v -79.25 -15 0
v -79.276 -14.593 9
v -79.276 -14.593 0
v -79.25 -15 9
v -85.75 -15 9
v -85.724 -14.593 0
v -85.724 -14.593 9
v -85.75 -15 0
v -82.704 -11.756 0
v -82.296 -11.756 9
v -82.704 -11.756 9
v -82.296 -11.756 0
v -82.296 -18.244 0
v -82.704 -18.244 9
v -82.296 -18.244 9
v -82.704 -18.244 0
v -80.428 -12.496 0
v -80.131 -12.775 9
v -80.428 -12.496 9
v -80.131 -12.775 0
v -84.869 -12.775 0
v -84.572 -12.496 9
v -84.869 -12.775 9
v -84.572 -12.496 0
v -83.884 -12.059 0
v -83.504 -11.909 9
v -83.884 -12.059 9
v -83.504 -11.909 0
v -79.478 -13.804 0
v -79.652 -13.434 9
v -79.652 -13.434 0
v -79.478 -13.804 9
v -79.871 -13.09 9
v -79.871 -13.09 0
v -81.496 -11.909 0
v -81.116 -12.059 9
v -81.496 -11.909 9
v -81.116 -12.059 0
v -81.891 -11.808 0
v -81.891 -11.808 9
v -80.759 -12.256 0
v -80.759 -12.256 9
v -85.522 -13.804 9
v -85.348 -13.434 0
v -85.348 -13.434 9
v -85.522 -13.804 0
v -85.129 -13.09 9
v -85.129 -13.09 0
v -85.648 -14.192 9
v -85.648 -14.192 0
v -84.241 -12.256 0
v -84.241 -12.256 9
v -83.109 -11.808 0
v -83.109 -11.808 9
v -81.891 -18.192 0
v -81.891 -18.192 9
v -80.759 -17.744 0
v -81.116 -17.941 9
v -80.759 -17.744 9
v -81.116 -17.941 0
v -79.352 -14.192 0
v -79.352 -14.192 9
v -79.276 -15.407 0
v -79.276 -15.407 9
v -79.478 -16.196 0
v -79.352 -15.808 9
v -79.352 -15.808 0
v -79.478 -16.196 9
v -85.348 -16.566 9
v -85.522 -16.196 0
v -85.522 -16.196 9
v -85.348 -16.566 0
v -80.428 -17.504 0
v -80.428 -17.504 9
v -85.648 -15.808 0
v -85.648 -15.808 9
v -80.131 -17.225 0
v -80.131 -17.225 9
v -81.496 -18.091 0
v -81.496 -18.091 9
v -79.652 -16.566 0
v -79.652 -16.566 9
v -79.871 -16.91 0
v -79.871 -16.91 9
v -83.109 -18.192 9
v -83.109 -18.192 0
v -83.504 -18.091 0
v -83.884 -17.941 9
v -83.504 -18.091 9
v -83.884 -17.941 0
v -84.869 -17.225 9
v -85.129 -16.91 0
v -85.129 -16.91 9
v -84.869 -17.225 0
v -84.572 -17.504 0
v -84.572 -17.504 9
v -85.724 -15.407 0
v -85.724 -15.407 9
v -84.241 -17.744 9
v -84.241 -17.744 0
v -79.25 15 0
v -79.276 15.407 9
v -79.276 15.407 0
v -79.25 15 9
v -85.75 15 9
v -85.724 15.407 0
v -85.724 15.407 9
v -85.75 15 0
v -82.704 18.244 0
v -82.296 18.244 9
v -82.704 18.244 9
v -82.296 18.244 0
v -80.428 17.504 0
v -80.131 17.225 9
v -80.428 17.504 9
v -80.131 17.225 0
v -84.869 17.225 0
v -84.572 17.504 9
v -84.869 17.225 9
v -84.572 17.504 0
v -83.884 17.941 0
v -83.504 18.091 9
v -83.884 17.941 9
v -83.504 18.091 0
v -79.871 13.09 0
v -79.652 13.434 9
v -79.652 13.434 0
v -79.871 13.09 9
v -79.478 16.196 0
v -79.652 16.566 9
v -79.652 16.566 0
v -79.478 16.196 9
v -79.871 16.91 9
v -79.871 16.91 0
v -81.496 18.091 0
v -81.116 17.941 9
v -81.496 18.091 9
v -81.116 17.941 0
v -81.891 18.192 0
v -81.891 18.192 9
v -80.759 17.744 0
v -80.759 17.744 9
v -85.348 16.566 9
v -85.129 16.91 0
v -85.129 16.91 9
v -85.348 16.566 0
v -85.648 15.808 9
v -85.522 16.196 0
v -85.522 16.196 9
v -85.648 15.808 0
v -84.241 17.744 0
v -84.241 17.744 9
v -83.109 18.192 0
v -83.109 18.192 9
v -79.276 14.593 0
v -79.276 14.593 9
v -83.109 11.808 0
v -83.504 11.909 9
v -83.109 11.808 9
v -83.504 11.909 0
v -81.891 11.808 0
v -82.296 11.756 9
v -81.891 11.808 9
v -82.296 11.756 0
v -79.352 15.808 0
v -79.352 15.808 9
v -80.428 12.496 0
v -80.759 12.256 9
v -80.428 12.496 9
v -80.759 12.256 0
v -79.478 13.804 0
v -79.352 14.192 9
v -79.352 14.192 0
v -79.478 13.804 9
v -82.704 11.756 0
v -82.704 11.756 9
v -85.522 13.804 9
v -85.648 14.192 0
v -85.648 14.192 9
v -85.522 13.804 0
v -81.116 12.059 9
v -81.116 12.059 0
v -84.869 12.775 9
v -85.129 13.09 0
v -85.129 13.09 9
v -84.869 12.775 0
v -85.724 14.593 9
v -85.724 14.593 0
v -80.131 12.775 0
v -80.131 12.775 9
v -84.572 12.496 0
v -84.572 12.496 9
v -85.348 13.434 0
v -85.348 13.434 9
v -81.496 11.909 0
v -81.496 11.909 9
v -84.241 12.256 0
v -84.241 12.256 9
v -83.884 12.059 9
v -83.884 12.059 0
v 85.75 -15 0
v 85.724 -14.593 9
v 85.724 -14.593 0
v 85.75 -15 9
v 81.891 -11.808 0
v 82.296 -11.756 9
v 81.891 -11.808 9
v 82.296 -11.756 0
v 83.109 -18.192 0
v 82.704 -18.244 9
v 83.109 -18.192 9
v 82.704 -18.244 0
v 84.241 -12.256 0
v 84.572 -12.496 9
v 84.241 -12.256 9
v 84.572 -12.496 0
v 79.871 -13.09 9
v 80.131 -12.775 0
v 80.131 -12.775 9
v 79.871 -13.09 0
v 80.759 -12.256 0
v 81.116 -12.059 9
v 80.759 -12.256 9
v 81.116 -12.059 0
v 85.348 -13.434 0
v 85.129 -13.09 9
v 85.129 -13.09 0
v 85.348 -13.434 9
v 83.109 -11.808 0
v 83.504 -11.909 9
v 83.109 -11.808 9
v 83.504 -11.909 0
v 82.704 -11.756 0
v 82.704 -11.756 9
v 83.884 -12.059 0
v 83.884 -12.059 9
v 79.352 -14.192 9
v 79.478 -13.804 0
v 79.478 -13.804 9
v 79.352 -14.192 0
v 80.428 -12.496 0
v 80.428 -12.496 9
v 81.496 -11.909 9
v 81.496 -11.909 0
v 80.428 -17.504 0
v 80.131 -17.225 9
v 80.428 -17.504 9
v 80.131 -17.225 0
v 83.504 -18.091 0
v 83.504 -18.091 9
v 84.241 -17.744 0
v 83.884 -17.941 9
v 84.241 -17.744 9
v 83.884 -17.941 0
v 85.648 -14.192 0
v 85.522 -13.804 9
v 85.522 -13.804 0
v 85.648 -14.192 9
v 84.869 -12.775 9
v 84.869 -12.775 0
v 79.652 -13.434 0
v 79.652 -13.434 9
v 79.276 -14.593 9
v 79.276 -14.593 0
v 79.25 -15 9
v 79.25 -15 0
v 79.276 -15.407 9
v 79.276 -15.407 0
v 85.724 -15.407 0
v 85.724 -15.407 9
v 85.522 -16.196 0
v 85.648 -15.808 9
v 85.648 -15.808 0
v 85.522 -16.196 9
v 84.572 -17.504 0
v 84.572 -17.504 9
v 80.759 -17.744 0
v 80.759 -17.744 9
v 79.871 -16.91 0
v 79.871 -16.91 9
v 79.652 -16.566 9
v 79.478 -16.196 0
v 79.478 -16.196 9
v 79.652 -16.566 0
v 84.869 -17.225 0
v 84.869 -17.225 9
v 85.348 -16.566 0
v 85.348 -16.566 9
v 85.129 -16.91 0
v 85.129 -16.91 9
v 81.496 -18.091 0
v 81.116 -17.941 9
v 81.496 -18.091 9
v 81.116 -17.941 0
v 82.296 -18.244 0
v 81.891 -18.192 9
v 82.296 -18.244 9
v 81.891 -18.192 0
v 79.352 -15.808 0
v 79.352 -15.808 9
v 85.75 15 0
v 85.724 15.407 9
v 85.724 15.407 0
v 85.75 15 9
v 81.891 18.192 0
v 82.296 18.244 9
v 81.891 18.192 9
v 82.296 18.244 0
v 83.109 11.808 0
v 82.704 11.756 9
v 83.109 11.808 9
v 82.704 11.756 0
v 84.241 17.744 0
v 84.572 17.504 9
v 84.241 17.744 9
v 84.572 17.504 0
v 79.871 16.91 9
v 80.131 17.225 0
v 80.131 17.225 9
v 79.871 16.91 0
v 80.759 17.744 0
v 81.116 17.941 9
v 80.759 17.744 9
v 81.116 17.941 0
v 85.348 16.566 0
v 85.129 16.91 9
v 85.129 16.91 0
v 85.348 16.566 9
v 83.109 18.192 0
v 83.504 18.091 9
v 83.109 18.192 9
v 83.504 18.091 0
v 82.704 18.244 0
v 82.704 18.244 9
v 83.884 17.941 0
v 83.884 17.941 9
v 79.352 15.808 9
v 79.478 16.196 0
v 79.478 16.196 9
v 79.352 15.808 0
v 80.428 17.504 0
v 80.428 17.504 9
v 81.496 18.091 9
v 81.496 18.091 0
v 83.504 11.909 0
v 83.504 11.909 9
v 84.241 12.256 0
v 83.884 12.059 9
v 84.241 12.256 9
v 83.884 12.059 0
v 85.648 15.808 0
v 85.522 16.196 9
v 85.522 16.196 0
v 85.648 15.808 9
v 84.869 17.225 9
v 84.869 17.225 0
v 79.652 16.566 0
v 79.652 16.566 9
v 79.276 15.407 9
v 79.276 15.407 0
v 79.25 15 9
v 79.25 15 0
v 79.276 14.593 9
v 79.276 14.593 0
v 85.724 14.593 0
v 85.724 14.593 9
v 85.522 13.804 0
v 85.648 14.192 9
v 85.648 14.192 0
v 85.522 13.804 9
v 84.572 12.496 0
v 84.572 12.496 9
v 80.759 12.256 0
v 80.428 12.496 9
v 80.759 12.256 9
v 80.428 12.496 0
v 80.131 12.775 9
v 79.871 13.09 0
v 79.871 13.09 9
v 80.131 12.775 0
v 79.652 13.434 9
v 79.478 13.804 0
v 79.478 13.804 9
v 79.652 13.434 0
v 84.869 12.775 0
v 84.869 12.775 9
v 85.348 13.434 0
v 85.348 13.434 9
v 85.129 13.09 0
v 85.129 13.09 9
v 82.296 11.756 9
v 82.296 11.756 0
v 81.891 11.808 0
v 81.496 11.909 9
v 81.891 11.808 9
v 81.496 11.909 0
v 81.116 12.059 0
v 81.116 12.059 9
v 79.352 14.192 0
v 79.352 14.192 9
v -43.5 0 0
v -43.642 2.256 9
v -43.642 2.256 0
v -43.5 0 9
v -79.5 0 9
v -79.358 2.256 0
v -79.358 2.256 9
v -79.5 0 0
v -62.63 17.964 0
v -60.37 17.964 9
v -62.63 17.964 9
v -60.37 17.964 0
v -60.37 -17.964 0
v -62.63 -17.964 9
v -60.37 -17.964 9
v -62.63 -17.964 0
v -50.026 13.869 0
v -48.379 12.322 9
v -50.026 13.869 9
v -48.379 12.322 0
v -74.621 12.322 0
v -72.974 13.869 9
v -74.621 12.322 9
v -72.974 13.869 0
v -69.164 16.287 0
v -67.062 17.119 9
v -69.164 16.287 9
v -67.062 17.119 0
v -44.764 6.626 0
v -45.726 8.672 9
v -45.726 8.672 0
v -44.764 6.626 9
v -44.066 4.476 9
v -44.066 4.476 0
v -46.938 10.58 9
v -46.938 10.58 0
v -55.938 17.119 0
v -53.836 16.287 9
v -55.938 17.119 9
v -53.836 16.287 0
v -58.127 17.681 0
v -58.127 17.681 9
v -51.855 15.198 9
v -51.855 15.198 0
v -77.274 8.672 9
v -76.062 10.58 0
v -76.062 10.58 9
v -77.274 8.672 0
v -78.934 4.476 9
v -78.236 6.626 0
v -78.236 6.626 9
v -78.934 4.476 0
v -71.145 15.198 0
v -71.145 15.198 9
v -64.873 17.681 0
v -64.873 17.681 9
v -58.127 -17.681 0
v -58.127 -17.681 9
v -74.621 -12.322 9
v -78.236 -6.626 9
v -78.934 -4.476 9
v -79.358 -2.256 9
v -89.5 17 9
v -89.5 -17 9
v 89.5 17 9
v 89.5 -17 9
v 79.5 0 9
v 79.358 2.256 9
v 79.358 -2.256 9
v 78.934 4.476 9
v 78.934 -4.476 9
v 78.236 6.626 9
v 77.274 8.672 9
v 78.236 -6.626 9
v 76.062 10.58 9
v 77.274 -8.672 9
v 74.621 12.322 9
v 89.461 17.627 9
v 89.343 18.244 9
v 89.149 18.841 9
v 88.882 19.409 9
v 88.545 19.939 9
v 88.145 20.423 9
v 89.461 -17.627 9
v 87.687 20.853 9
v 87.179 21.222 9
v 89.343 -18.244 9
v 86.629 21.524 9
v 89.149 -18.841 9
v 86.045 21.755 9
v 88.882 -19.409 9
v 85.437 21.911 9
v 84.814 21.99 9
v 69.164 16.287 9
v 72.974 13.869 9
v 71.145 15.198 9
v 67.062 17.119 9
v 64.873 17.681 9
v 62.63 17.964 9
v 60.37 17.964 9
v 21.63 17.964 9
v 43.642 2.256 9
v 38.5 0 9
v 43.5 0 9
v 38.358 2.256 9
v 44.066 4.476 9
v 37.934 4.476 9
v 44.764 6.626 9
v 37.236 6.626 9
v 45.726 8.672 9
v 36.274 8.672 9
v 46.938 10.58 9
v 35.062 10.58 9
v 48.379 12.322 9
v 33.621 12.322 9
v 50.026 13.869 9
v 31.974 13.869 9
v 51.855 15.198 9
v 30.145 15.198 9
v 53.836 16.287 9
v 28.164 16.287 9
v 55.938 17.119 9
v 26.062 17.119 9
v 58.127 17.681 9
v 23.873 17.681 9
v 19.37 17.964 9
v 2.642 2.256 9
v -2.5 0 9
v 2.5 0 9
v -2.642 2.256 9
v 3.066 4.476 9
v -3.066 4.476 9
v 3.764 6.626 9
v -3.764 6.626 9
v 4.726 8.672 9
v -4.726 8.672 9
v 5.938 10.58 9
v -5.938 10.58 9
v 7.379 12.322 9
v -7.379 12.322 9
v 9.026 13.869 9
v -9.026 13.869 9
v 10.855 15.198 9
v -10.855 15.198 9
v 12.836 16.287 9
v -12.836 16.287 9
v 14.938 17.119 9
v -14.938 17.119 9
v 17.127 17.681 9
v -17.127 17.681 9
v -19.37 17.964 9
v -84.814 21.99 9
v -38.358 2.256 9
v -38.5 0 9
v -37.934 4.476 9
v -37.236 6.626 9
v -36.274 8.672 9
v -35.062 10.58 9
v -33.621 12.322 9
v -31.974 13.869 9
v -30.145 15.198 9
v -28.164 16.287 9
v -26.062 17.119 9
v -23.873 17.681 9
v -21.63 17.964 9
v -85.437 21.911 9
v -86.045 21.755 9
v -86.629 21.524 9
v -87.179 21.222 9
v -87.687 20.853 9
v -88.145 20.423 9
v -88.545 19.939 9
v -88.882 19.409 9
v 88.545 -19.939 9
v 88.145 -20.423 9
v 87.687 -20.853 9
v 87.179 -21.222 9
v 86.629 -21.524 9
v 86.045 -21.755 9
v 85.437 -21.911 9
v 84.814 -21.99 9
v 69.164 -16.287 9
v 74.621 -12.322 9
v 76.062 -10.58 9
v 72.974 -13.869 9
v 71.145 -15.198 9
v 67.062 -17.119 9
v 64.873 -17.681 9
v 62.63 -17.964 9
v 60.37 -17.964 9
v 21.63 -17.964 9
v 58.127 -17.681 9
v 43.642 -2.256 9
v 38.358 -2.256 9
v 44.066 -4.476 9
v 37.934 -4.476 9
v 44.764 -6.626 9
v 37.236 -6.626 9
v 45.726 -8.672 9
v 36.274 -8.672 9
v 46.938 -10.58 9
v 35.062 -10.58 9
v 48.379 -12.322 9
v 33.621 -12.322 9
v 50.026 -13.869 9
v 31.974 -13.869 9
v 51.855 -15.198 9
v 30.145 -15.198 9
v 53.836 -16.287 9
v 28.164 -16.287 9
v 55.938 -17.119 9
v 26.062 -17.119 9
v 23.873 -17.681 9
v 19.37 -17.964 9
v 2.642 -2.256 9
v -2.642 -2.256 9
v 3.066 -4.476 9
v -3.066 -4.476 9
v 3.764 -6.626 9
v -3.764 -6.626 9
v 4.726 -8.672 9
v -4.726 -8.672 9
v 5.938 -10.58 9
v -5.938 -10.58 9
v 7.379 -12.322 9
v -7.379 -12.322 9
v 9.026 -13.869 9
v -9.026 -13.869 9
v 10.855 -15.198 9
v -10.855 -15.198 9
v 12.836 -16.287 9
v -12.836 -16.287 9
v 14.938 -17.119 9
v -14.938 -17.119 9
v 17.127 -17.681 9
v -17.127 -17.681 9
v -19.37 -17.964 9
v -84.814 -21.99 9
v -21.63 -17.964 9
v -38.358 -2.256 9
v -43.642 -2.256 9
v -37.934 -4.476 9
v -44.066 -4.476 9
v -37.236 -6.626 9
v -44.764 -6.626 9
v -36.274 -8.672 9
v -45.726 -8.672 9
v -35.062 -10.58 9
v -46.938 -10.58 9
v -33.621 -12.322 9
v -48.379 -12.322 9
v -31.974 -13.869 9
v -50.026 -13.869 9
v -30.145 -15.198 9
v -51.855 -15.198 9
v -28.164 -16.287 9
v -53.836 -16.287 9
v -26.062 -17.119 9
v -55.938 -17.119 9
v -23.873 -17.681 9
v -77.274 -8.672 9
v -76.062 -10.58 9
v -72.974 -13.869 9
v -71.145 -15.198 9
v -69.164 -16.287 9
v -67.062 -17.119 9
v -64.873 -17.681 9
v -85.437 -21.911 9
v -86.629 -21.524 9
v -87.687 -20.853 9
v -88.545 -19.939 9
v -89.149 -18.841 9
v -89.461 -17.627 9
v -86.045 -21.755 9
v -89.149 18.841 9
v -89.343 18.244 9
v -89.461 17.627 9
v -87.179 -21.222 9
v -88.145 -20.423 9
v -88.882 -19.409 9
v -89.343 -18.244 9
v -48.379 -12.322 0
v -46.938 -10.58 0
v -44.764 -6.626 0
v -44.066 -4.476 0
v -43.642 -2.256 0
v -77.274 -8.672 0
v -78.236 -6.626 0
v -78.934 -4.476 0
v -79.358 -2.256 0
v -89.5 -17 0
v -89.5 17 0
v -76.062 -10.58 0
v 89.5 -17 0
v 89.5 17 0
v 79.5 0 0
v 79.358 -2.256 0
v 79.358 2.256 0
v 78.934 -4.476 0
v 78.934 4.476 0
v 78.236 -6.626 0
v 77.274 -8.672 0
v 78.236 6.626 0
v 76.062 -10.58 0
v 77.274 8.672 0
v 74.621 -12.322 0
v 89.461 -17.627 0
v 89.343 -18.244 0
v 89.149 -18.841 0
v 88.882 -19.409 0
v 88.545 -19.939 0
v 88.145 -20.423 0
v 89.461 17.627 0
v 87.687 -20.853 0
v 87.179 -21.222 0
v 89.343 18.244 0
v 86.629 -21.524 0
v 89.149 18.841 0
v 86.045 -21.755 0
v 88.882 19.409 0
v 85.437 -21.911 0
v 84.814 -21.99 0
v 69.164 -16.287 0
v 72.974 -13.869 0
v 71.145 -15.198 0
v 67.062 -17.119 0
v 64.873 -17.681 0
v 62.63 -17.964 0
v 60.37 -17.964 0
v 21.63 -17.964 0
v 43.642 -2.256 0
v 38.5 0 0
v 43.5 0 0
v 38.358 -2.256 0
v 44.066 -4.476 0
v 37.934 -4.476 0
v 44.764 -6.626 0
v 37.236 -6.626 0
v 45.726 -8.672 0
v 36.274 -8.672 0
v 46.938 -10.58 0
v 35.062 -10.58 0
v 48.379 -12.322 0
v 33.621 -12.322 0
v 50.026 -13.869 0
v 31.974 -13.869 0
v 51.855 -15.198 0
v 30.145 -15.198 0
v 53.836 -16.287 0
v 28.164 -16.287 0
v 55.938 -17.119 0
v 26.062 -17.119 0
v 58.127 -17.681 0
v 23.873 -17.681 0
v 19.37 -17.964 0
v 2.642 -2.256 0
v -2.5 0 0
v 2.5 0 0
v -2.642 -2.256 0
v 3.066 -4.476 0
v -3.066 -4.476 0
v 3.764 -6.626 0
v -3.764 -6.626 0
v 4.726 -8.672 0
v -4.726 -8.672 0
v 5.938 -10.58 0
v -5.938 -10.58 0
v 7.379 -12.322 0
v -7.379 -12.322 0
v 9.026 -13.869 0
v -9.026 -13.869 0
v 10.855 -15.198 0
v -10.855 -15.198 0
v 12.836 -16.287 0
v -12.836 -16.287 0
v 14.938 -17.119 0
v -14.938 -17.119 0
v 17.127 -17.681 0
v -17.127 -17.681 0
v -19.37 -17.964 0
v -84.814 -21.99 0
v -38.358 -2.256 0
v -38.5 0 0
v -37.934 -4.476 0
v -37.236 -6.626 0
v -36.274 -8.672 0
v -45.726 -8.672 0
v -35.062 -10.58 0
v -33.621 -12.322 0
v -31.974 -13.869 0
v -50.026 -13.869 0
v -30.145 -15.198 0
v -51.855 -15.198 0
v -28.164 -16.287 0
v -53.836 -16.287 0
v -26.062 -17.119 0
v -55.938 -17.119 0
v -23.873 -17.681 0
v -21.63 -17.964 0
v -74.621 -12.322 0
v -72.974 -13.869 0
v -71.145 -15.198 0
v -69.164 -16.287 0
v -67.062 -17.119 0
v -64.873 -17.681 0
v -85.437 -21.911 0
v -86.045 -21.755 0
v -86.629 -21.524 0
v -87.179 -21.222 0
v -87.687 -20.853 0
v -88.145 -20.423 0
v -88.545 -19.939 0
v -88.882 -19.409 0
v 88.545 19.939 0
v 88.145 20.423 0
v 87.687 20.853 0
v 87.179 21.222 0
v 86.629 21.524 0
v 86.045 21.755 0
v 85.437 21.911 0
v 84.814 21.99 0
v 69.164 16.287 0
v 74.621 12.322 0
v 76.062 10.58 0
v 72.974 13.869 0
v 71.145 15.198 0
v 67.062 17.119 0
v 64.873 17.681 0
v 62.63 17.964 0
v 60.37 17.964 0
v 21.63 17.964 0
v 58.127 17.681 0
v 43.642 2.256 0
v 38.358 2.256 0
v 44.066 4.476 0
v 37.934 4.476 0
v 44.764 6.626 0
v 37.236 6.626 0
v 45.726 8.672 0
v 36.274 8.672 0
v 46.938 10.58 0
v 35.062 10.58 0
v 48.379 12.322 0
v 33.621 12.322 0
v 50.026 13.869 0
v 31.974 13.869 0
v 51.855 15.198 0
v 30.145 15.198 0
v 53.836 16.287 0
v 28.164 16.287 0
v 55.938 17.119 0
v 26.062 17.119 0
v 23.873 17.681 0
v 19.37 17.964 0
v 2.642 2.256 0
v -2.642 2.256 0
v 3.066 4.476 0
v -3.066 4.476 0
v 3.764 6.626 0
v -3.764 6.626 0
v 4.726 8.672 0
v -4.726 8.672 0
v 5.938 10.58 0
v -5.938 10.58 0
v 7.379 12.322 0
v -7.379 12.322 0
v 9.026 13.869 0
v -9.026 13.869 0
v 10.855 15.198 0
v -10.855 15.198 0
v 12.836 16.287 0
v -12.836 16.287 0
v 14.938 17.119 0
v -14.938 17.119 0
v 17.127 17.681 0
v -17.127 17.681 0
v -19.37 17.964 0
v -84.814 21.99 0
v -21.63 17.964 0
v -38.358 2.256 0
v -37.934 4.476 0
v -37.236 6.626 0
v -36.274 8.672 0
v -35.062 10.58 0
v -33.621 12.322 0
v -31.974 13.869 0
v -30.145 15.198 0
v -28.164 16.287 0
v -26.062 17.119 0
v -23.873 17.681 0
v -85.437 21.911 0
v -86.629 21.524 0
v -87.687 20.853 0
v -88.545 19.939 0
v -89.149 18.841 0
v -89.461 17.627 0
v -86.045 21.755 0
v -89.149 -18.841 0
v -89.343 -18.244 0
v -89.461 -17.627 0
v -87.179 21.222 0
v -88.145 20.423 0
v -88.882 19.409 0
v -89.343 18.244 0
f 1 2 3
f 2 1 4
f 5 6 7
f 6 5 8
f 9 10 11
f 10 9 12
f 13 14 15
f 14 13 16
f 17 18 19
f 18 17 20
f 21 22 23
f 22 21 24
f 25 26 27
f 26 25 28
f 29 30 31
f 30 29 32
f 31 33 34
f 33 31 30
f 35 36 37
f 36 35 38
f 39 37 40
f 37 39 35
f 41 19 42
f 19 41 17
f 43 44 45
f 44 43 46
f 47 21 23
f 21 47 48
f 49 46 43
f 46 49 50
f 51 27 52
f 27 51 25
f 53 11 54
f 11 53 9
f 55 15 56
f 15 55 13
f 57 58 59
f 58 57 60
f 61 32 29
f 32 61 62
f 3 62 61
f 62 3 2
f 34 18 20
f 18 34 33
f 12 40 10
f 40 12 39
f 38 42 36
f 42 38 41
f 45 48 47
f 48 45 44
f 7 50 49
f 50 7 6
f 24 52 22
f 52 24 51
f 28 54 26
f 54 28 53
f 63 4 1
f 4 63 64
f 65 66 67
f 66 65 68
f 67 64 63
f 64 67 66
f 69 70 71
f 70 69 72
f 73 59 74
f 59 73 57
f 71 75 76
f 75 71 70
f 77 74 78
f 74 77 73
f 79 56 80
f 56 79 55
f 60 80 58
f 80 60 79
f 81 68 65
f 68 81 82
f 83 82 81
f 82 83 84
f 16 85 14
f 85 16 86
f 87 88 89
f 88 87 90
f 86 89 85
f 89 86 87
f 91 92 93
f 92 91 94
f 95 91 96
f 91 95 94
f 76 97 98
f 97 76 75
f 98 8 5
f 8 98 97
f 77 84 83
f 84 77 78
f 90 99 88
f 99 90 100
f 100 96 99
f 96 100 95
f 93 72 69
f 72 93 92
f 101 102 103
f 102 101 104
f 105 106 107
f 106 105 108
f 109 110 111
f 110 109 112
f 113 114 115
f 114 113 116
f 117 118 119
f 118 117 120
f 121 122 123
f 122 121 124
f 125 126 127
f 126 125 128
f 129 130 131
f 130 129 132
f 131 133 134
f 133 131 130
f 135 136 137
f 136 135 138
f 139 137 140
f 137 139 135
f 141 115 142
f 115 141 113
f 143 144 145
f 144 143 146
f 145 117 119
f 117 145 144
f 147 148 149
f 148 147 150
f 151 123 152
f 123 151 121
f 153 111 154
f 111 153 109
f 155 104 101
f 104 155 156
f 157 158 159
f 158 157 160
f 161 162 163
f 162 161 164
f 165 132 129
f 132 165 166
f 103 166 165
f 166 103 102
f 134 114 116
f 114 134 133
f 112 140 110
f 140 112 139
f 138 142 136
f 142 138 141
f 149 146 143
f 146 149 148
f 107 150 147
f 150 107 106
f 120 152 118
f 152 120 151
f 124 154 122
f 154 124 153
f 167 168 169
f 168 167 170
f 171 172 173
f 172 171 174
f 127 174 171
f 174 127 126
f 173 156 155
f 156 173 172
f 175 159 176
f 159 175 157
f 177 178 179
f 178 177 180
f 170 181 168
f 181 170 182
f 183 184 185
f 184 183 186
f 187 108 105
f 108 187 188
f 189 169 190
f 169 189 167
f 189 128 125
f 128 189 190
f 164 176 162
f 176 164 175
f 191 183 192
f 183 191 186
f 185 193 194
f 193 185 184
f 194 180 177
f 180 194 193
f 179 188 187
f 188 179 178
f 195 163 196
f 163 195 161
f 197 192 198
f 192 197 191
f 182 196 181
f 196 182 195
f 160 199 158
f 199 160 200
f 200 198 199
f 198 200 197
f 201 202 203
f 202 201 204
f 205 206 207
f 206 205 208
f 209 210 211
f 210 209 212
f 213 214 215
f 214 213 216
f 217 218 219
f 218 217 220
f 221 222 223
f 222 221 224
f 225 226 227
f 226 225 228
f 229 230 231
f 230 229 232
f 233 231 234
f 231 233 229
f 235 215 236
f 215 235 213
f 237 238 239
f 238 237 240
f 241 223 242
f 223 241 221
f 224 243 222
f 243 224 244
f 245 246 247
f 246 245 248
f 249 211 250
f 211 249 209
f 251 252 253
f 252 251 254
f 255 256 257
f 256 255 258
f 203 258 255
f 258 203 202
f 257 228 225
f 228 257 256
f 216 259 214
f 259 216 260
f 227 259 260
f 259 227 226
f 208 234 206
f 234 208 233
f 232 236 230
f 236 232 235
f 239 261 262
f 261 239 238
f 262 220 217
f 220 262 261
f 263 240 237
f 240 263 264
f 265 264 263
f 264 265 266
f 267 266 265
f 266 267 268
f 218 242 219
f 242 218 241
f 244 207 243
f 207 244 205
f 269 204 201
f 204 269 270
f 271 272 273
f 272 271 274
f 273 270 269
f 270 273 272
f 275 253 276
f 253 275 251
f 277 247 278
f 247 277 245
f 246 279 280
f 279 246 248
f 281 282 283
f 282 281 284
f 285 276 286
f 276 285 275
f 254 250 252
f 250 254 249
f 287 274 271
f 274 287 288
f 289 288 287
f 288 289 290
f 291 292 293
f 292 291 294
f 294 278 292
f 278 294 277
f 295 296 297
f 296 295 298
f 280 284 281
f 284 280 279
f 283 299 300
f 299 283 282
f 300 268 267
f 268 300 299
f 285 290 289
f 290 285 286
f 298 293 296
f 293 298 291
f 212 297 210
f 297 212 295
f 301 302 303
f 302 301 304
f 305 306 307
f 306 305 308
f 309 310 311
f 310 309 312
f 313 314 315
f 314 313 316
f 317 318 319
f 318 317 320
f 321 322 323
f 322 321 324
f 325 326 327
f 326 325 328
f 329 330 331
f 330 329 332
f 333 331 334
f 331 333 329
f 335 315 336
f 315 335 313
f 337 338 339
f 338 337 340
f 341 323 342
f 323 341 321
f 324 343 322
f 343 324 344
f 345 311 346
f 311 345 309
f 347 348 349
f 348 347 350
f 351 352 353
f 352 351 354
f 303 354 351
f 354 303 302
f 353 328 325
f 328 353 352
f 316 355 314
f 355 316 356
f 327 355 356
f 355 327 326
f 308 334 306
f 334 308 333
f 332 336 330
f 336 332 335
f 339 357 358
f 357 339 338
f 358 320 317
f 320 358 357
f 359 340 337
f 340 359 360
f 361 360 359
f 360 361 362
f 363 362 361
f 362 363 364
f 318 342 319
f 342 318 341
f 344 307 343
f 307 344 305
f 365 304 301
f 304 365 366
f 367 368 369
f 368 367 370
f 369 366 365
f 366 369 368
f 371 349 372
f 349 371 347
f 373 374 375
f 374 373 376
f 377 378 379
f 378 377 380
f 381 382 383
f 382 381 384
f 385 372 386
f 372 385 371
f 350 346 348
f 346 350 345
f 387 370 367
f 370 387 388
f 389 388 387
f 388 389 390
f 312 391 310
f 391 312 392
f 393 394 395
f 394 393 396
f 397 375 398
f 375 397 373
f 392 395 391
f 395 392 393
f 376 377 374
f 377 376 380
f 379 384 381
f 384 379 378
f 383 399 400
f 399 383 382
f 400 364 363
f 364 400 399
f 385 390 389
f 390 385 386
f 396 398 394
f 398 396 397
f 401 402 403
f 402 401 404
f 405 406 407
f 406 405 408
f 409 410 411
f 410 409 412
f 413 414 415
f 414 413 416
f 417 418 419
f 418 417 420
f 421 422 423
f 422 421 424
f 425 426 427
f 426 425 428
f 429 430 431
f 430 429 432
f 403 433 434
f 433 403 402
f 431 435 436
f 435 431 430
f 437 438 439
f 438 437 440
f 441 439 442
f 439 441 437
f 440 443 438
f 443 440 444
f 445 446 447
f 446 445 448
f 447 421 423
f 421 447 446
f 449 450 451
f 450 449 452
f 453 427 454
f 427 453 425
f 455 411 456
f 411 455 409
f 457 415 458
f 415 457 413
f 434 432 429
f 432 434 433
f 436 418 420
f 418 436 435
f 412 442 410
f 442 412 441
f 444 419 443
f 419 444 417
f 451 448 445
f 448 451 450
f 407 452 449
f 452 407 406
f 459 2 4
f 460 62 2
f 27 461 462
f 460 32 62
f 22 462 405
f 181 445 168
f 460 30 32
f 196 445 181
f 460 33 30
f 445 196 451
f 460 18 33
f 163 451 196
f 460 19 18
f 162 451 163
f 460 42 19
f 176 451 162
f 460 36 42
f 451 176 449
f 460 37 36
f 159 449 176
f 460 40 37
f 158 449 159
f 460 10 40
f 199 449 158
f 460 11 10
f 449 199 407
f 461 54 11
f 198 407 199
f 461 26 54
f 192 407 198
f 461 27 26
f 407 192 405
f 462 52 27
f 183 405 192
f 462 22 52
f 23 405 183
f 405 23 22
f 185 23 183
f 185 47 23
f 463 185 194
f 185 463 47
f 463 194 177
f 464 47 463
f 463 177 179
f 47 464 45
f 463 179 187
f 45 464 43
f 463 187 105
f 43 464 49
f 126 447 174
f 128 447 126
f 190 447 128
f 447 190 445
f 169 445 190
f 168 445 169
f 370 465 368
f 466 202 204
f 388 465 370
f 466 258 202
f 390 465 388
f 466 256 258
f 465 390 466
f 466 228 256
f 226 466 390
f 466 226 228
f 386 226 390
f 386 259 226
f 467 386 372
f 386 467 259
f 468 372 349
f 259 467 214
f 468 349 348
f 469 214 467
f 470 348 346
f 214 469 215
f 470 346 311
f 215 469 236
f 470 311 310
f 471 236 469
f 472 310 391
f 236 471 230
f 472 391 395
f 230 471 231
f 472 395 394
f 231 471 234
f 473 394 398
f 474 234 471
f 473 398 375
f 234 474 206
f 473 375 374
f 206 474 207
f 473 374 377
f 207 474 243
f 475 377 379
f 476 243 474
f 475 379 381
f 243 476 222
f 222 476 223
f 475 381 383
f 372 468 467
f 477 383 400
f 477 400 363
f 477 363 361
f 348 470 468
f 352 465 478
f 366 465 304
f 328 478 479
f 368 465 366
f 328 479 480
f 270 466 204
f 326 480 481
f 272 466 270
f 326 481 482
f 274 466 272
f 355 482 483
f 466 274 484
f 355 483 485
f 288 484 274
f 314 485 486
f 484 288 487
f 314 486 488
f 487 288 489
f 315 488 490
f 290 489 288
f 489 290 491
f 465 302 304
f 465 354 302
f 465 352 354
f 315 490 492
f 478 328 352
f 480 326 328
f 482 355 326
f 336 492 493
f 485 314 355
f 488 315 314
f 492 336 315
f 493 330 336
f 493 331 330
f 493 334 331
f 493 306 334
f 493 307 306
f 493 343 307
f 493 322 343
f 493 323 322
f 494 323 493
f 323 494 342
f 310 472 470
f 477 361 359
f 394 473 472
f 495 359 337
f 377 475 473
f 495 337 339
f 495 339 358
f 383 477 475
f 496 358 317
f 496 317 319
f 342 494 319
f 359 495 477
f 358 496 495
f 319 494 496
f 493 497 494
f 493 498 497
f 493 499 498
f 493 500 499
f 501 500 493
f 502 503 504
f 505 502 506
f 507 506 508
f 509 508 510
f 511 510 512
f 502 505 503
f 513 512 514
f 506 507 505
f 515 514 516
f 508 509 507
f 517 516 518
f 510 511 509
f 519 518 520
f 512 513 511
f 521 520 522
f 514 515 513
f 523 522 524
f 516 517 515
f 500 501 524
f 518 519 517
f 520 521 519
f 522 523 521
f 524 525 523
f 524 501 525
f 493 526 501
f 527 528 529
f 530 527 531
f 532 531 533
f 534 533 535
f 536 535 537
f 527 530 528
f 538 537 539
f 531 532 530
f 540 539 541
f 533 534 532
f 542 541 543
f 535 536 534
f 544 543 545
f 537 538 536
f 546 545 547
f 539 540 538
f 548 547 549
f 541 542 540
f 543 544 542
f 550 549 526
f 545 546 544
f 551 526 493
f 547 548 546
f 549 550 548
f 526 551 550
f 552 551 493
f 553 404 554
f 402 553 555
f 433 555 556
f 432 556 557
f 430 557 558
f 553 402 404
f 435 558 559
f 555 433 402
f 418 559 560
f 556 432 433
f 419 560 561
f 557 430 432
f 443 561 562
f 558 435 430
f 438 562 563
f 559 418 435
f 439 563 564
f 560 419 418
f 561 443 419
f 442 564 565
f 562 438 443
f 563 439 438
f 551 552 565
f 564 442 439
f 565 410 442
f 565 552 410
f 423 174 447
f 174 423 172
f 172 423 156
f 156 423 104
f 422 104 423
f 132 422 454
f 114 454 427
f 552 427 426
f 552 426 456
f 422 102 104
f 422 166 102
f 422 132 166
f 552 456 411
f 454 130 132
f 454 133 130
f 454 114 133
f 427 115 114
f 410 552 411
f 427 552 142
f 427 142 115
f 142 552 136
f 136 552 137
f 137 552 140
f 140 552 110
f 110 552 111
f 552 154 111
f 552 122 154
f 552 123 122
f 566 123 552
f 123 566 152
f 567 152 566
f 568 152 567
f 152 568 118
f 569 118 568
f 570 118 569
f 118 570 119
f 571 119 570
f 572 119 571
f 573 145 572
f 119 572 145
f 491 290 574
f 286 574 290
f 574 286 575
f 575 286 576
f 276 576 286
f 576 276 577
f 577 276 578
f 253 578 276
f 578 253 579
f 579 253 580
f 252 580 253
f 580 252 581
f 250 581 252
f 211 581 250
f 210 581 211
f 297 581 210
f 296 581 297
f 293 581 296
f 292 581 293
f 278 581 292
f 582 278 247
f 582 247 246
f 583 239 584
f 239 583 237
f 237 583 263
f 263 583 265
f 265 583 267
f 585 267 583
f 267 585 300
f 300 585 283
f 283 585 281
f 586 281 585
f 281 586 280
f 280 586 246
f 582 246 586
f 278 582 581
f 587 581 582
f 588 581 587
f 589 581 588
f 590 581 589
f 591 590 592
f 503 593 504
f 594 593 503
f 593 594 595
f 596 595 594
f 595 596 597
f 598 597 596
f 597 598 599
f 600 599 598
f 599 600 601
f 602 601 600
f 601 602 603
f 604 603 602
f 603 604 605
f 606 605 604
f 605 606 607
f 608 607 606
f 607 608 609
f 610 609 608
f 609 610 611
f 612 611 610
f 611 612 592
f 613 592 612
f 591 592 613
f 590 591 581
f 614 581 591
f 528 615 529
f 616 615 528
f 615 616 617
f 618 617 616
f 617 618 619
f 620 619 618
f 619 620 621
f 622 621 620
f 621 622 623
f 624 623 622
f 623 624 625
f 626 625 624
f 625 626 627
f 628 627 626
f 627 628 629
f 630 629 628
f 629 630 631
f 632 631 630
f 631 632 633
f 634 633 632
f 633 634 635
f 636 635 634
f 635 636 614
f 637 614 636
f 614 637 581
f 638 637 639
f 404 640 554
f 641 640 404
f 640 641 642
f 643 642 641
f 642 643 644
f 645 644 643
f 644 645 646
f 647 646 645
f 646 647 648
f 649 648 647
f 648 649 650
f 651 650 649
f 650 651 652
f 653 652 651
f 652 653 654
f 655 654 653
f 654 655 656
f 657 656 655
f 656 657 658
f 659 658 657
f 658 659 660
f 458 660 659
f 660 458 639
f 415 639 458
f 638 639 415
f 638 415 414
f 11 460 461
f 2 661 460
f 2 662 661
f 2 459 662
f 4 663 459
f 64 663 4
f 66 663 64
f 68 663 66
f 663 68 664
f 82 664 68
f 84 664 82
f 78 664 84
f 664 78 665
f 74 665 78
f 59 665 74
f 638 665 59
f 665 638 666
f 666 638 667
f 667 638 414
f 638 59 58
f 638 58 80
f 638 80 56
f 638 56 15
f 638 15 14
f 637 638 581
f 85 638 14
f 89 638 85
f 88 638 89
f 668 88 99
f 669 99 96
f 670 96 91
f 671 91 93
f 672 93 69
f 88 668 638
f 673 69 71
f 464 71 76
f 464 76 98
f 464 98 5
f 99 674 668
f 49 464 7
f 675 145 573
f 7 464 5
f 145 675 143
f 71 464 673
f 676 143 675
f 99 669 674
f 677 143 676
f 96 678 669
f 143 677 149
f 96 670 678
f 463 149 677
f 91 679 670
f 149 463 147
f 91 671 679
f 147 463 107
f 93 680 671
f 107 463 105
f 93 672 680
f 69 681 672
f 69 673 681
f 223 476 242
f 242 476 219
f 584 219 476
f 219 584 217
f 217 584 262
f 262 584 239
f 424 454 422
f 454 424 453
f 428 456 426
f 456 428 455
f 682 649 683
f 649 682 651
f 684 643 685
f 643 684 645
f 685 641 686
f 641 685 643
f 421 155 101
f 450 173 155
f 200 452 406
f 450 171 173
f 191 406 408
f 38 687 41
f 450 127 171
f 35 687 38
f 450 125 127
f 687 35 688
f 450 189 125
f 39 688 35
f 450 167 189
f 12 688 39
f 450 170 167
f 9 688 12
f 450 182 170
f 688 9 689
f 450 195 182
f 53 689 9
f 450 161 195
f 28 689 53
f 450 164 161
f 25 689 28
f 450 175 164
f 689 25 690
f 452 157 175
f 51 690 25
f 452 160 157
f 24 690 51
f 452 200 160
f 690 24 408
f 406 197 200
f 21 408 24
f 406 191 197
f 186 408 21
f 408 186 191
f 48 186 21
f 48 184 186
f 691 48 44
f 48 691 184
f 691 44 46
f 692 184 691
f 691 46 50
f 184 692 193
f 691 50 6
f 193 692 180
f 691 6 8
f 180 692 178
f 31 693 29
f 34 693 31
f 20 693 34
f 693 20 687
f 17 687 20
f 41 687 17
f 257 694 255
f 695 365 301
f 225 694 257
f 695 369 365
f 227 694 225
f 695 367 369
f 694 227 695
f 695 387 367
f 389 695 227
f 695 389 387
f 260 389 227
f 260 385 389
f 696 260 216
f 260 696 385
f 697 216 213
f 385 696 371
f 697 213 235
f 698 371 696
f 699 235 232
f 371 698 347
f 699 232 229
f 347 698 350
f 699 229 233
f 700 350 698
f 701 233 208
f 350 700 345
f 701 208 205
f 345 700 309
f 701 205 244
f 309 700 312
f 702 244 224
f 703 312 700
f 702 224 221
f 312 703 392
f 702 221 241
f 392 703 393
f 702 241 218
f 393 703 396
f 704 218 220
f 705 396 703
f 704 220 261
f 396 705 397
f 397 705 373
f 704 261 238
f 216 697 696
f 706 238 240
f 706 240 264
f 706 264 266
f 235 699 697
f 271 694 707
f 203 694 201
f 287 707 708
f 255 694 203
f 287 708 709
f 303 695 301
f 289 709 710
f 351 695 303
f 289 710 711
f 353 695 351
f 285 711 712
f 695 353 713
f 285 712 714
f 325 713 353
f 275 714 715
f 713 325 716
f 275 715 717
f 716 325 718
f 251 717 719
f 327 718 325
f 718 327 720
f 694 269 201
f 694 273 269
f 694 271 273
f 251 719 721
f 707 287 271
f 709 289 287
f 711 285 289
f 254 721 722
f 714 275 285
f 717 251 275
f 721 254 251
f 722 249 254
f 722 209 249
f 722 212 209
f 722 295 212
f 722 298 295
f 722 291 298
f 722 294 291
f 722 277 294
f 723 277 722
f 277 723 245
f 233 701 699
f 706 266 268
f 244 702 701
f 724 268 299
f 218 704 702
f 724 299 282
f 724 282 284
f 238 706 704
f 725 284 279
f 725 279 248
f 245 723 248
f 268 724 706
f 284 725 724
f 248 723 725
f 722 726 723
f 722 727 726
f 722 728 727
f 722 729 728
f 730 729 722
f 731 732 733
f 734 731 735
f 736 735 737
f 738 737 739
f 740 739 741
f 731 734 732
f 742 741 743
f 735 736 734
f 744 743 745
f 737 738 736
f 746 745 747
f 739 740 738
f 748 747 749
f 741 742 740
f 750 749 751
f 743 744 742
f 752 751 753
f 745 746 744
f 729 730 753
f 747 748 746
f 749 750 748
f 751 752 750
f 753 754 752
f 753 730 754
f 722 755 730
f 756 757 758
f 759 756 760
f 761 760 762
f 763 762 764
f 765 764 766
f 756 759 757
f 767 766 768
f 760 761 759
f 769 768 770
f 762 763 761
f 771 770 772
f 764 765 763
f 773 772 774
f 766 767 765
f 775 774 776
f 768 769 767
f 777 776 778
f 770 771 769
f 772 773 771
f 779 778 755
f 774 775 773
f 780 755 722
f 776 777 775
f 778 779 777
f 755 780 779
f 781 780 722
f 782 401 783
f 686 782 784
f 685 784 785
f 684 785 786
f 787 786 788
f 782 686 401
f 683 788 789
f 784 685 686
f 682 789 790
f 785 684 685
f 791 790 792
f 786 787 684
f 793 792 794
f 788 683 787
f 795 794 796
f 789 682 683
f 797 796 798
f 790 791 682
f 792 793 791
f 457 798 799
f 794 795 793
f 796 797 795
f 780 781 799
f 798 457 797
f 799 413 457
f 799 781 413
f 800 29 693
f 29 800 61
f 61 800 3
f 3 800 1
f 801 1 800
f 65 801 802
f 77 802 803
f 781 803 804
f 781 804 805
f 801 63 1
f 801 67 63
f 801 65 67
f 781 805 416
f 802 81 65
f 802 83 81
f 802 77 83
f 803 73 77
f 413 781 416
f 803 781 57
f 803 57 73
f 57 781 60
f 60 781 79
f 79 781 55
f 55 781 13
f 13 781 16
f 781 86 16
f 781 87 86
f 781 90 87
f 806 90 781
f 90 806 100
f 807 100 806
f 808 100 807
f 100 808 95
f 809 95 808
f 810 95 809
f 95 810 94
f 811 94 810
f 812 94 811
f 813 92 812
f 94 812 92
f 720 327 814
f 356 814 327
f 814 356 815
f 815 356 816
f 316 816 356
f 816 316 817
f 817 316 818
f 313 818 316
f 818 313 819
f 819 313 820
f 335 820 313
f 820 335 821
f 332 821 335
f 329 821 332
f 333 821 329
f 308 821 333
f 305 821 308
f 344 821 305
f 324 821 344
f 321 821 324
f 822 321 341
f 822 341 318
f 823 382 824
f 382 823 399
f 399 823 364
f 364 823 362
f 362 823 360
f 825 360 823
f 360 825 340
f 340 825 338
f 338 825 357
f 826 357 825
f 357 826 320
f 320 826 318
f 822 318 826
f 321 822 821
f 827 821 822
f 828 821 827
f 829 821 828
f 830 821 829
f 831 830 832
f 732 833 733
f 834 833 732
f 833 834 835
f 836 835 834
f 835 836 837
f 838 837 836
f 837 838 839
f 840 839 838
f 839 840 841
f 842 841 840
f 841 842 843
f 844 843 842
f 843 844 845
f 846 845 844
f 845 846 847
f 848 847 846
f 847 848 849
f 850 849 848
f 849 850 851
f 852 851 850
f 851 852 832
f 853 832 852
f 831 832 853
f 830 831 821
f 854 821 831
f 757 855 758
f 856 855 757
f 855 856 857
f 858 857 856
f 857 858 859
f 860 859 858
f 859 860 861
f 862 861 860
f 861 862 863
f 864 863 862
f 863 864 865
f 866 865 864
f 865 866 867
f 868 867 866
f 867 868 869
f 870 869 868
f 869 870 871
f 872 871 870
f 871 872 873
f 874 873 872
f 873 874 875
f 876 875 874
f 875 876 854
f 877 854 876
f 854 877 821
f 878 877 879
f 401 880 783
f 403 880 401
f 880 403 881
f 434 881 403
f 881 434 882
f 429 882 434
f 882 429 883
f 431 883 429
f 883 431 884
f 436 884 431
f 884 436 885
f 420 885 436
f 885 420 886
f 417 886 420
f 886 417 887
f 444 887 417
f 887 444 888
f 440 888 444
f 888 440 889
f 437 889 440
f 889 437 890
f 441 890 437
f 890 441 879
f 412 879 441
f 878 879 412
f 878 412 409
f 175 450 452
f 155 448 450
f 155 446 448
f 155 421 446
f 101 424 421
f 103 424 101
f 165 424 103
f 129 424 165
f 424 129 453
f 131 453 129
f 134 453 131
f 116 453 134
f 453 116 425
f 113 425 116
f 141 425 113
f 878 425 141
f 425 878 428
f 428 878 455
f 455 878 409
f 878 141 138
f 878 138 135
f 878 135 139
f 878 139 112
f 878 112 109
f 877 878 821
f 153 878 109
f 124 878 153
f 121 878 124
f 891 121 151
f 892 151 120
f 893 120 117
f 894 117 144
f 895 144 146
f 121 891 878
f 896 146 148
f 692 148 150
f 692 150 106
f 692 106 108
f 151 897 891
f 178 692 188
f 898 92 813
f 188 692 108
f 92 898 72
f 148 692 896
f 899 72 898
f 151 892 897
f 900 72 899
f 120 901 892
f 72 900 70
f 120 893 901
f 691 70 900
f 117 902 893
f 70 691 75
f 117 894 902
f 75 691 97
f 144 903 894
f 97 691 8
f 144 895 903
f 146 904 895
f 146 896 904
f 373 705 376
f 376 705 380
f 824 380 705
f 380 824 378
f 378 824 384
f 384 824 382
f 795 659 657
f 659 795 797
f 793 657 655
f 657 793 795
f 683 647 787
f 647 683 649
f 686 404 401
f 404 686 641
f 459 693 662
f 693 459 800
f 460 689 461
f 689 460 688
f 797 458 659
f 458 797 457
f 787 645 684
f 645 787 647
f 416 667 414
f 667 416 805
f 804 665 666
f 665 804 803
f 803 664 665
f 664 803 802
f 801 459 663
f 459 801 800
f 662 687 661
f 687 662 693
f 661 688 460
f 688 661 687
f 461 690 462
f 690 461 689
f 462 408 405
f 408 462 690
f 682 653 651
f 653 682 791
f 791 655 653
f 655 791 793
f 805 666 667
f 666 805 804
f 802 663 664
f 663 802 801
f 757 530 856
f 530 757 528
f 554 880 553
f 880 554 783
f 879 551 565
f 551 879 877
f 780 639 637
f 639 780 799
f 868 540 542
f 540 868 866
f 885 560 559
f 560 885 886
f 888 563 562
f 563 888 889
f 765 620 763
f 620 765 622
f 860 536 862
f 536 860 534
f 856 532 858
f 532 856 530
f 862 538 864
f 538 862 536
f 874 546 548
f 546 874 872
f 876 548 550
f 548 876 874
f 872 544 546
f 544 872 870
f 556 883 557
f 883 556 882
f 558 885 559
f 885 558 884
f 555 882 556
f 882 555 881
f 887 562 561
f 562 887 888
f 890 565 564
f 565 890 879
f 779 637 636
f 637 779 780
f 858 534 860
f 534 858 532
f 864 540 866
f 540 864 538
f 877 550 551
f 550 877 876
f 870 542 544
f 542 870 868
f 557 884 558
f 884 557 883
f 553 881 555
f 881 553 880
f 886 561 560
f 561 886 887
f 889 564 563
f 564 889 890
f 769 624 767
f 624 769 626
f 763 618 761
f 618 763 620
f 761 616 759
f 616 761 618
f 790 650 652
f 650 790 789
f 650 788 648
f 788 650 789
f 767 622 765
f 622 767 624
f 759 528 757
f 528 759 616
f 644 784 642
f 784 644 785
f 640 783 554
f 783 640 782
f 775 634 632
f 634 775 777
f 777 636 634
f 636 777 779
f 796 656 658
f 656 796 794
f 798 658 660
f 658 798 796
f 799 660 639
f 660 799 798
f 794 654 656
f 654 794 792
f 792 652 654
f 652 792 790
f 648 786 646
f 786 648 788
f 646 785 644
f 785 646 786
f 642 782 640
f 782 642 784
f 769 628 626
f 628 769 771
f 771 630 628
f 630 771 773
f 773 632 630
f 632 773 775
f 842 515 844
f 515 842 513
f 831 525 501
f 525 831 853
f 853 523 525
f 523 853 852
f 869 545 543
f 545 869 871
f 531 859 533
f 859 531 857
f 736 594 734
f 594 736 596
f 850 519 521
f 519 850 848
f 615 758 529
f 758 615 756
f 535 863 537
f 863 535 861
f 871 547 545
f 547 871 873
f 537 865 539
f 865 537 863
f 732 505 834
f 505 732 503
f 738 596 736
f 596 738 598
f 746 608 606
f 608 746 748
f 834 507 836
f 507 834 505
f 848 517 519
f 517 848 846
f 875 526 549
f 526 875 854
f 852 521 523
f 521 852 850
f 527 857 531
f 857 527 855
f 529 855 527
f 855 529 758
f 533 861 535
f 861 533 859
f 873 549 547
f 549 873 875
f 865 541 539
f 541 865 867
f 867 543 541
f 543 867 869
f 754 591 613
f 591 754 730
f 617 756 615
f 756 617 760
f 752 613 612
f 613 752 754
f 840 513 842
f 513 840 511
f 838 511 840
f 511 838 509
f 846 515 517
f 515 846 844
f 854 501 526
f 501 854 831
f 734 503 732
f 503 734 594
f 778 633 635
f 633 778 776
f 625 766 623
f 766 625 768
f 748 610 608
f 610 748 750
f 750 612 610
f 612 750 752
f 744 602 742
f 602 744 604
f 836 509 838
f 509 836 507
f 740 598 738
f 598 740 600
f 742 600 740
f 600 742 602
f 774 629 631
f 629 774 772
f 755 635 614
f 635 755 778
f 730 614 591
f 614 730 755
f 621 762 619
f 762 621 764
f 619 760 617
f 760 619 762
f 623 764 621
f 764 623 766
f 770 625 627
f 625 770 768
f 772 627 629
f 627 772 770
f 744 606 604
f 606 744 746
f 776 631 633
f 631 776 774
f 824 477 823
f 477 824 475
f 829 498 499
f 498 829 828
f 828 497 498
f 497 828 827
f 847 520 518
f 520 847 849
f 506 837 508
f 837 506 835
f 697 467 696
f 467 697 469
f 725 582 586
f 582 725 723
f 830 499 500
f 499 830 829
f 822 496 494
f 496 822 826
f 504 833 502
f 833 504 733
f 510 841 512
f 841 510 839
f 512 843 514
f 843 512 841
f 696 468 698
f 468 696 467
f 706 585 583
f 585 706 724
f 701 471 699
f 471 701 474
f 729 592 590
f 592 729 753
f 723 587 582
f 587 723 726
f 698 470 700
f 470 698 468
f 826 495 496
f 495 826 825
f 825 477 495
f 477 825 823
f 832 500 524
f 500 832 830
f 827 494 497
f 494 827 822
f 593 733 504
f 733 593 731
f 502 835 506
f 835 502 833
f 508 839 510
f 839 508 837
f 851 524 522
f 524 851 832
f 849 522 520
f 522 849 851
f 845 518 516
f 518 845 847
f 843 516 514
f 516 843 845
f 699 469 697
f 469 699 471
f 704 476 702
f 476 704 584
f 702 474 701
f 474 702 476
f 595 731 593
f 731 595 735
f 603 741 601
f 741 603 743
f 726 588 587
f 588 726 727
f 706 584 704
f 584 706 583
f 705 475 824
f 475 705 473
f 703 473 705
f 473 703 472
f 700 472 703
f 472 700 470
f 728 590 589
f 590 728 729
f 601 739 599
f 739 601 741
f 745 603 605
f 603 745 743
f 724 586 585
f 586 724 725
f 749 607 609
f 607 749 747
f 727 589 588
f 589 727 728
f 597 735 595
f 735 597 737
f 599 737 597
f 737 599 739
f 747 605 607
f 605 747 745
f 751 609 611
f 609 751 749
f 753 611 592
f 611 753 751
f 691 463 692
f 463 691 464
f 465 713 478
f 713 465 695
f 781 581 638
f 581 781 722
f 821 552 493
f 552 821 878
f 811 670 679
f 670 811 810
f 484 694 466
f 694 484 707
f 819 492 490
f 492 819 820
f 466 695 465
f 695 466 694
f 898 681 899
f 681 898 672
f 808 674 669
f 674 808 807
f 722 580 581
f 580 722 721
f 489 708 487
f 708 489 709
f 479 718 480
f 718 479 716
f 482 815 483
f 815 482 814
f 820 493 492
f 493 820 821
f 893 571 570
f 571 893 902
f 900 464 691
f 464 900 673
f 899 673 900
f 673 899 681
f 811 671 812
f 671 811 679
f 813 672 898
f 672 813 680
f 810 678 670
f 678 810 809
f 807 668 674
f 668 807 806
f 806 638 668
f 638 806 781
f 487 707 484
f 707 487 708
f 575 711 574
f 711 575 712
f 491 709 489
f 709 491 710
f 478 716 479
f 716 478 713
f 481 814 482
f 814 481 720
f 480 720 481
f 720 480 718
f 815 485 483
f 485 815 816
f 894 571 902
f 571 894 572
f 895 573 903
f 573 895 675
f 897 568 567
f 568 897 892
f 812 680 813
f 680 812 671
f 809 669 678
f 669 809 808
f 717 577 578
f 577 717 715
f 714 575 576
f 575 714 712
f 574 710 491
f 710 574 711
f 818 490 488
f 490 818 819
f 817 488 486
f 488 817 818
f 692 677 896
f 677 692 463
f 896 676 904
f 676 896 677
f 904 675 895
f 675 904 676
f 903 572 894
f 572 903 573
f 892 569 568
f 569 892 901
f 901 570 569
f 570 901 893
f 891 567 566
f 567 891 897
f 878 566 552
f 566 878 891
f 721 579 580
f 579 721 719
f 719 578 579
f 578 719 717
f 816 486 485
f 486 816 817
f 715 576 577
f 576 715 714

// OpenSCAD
$fn = 50;


difference() {
	union() {
		hull() {
			translate(v = [-84.5000000000, 17.0000000000, 0]) {
				cylinder(h = 9, r = 5);
			}
			translate(v = [84.5000000000, 17.0000000000, 0]) {
				cylinder(h = 9, r = 5);
			}
			translate(v = [-84.5000000000, -17.0000000000, 0]) {
				cylinder(h = 9, r = 5);
			}
			translate(v = [84.5000000000, -17.0000000000, 0]) {
				cylinder(h = 9, r = 5);
			}
		}
	}
	union() {
		#translate(v = [-82.5000000000, -15.0000000000, -100.0000000000]) {
			cylinder(h = 200, r = 3.2500000000);
		}
		#translate(v = [-82.5000000000, 15.0000000000, -100.0000000000]) {
			cylinder(h = 200, r = 3.2500000000);
		}
		#translate(v = [82.5000000000, -15.0000000000, -100.0000000000]) {
			cylinder(h = 200, r = 3.2500000000);
		}
		#translate(v = [82.5000000000, 15.0000000000, -100.0000000000]) {
			cylinder(h = 200, r = 3.2500000000);
		}
		#translate(v = [-61.5000000000, 0, 0]) {
			cylinder(h = 9, r = 18.0000000000);
		}
		#translate(v = [-20.5000000000, 0, 0]) {
			cylinder(h = 9, r = 18.0000000000);
		}
		#translate(v = [20.5000000000, 0, 0]) {
			cylinder(h = 9, r = 18.0000000000);
		}
		#translate(v = [61.5000000000, 0, 0]) {
			cylinder(h = 9, r = 18.0000000000);
		}
	}
}
